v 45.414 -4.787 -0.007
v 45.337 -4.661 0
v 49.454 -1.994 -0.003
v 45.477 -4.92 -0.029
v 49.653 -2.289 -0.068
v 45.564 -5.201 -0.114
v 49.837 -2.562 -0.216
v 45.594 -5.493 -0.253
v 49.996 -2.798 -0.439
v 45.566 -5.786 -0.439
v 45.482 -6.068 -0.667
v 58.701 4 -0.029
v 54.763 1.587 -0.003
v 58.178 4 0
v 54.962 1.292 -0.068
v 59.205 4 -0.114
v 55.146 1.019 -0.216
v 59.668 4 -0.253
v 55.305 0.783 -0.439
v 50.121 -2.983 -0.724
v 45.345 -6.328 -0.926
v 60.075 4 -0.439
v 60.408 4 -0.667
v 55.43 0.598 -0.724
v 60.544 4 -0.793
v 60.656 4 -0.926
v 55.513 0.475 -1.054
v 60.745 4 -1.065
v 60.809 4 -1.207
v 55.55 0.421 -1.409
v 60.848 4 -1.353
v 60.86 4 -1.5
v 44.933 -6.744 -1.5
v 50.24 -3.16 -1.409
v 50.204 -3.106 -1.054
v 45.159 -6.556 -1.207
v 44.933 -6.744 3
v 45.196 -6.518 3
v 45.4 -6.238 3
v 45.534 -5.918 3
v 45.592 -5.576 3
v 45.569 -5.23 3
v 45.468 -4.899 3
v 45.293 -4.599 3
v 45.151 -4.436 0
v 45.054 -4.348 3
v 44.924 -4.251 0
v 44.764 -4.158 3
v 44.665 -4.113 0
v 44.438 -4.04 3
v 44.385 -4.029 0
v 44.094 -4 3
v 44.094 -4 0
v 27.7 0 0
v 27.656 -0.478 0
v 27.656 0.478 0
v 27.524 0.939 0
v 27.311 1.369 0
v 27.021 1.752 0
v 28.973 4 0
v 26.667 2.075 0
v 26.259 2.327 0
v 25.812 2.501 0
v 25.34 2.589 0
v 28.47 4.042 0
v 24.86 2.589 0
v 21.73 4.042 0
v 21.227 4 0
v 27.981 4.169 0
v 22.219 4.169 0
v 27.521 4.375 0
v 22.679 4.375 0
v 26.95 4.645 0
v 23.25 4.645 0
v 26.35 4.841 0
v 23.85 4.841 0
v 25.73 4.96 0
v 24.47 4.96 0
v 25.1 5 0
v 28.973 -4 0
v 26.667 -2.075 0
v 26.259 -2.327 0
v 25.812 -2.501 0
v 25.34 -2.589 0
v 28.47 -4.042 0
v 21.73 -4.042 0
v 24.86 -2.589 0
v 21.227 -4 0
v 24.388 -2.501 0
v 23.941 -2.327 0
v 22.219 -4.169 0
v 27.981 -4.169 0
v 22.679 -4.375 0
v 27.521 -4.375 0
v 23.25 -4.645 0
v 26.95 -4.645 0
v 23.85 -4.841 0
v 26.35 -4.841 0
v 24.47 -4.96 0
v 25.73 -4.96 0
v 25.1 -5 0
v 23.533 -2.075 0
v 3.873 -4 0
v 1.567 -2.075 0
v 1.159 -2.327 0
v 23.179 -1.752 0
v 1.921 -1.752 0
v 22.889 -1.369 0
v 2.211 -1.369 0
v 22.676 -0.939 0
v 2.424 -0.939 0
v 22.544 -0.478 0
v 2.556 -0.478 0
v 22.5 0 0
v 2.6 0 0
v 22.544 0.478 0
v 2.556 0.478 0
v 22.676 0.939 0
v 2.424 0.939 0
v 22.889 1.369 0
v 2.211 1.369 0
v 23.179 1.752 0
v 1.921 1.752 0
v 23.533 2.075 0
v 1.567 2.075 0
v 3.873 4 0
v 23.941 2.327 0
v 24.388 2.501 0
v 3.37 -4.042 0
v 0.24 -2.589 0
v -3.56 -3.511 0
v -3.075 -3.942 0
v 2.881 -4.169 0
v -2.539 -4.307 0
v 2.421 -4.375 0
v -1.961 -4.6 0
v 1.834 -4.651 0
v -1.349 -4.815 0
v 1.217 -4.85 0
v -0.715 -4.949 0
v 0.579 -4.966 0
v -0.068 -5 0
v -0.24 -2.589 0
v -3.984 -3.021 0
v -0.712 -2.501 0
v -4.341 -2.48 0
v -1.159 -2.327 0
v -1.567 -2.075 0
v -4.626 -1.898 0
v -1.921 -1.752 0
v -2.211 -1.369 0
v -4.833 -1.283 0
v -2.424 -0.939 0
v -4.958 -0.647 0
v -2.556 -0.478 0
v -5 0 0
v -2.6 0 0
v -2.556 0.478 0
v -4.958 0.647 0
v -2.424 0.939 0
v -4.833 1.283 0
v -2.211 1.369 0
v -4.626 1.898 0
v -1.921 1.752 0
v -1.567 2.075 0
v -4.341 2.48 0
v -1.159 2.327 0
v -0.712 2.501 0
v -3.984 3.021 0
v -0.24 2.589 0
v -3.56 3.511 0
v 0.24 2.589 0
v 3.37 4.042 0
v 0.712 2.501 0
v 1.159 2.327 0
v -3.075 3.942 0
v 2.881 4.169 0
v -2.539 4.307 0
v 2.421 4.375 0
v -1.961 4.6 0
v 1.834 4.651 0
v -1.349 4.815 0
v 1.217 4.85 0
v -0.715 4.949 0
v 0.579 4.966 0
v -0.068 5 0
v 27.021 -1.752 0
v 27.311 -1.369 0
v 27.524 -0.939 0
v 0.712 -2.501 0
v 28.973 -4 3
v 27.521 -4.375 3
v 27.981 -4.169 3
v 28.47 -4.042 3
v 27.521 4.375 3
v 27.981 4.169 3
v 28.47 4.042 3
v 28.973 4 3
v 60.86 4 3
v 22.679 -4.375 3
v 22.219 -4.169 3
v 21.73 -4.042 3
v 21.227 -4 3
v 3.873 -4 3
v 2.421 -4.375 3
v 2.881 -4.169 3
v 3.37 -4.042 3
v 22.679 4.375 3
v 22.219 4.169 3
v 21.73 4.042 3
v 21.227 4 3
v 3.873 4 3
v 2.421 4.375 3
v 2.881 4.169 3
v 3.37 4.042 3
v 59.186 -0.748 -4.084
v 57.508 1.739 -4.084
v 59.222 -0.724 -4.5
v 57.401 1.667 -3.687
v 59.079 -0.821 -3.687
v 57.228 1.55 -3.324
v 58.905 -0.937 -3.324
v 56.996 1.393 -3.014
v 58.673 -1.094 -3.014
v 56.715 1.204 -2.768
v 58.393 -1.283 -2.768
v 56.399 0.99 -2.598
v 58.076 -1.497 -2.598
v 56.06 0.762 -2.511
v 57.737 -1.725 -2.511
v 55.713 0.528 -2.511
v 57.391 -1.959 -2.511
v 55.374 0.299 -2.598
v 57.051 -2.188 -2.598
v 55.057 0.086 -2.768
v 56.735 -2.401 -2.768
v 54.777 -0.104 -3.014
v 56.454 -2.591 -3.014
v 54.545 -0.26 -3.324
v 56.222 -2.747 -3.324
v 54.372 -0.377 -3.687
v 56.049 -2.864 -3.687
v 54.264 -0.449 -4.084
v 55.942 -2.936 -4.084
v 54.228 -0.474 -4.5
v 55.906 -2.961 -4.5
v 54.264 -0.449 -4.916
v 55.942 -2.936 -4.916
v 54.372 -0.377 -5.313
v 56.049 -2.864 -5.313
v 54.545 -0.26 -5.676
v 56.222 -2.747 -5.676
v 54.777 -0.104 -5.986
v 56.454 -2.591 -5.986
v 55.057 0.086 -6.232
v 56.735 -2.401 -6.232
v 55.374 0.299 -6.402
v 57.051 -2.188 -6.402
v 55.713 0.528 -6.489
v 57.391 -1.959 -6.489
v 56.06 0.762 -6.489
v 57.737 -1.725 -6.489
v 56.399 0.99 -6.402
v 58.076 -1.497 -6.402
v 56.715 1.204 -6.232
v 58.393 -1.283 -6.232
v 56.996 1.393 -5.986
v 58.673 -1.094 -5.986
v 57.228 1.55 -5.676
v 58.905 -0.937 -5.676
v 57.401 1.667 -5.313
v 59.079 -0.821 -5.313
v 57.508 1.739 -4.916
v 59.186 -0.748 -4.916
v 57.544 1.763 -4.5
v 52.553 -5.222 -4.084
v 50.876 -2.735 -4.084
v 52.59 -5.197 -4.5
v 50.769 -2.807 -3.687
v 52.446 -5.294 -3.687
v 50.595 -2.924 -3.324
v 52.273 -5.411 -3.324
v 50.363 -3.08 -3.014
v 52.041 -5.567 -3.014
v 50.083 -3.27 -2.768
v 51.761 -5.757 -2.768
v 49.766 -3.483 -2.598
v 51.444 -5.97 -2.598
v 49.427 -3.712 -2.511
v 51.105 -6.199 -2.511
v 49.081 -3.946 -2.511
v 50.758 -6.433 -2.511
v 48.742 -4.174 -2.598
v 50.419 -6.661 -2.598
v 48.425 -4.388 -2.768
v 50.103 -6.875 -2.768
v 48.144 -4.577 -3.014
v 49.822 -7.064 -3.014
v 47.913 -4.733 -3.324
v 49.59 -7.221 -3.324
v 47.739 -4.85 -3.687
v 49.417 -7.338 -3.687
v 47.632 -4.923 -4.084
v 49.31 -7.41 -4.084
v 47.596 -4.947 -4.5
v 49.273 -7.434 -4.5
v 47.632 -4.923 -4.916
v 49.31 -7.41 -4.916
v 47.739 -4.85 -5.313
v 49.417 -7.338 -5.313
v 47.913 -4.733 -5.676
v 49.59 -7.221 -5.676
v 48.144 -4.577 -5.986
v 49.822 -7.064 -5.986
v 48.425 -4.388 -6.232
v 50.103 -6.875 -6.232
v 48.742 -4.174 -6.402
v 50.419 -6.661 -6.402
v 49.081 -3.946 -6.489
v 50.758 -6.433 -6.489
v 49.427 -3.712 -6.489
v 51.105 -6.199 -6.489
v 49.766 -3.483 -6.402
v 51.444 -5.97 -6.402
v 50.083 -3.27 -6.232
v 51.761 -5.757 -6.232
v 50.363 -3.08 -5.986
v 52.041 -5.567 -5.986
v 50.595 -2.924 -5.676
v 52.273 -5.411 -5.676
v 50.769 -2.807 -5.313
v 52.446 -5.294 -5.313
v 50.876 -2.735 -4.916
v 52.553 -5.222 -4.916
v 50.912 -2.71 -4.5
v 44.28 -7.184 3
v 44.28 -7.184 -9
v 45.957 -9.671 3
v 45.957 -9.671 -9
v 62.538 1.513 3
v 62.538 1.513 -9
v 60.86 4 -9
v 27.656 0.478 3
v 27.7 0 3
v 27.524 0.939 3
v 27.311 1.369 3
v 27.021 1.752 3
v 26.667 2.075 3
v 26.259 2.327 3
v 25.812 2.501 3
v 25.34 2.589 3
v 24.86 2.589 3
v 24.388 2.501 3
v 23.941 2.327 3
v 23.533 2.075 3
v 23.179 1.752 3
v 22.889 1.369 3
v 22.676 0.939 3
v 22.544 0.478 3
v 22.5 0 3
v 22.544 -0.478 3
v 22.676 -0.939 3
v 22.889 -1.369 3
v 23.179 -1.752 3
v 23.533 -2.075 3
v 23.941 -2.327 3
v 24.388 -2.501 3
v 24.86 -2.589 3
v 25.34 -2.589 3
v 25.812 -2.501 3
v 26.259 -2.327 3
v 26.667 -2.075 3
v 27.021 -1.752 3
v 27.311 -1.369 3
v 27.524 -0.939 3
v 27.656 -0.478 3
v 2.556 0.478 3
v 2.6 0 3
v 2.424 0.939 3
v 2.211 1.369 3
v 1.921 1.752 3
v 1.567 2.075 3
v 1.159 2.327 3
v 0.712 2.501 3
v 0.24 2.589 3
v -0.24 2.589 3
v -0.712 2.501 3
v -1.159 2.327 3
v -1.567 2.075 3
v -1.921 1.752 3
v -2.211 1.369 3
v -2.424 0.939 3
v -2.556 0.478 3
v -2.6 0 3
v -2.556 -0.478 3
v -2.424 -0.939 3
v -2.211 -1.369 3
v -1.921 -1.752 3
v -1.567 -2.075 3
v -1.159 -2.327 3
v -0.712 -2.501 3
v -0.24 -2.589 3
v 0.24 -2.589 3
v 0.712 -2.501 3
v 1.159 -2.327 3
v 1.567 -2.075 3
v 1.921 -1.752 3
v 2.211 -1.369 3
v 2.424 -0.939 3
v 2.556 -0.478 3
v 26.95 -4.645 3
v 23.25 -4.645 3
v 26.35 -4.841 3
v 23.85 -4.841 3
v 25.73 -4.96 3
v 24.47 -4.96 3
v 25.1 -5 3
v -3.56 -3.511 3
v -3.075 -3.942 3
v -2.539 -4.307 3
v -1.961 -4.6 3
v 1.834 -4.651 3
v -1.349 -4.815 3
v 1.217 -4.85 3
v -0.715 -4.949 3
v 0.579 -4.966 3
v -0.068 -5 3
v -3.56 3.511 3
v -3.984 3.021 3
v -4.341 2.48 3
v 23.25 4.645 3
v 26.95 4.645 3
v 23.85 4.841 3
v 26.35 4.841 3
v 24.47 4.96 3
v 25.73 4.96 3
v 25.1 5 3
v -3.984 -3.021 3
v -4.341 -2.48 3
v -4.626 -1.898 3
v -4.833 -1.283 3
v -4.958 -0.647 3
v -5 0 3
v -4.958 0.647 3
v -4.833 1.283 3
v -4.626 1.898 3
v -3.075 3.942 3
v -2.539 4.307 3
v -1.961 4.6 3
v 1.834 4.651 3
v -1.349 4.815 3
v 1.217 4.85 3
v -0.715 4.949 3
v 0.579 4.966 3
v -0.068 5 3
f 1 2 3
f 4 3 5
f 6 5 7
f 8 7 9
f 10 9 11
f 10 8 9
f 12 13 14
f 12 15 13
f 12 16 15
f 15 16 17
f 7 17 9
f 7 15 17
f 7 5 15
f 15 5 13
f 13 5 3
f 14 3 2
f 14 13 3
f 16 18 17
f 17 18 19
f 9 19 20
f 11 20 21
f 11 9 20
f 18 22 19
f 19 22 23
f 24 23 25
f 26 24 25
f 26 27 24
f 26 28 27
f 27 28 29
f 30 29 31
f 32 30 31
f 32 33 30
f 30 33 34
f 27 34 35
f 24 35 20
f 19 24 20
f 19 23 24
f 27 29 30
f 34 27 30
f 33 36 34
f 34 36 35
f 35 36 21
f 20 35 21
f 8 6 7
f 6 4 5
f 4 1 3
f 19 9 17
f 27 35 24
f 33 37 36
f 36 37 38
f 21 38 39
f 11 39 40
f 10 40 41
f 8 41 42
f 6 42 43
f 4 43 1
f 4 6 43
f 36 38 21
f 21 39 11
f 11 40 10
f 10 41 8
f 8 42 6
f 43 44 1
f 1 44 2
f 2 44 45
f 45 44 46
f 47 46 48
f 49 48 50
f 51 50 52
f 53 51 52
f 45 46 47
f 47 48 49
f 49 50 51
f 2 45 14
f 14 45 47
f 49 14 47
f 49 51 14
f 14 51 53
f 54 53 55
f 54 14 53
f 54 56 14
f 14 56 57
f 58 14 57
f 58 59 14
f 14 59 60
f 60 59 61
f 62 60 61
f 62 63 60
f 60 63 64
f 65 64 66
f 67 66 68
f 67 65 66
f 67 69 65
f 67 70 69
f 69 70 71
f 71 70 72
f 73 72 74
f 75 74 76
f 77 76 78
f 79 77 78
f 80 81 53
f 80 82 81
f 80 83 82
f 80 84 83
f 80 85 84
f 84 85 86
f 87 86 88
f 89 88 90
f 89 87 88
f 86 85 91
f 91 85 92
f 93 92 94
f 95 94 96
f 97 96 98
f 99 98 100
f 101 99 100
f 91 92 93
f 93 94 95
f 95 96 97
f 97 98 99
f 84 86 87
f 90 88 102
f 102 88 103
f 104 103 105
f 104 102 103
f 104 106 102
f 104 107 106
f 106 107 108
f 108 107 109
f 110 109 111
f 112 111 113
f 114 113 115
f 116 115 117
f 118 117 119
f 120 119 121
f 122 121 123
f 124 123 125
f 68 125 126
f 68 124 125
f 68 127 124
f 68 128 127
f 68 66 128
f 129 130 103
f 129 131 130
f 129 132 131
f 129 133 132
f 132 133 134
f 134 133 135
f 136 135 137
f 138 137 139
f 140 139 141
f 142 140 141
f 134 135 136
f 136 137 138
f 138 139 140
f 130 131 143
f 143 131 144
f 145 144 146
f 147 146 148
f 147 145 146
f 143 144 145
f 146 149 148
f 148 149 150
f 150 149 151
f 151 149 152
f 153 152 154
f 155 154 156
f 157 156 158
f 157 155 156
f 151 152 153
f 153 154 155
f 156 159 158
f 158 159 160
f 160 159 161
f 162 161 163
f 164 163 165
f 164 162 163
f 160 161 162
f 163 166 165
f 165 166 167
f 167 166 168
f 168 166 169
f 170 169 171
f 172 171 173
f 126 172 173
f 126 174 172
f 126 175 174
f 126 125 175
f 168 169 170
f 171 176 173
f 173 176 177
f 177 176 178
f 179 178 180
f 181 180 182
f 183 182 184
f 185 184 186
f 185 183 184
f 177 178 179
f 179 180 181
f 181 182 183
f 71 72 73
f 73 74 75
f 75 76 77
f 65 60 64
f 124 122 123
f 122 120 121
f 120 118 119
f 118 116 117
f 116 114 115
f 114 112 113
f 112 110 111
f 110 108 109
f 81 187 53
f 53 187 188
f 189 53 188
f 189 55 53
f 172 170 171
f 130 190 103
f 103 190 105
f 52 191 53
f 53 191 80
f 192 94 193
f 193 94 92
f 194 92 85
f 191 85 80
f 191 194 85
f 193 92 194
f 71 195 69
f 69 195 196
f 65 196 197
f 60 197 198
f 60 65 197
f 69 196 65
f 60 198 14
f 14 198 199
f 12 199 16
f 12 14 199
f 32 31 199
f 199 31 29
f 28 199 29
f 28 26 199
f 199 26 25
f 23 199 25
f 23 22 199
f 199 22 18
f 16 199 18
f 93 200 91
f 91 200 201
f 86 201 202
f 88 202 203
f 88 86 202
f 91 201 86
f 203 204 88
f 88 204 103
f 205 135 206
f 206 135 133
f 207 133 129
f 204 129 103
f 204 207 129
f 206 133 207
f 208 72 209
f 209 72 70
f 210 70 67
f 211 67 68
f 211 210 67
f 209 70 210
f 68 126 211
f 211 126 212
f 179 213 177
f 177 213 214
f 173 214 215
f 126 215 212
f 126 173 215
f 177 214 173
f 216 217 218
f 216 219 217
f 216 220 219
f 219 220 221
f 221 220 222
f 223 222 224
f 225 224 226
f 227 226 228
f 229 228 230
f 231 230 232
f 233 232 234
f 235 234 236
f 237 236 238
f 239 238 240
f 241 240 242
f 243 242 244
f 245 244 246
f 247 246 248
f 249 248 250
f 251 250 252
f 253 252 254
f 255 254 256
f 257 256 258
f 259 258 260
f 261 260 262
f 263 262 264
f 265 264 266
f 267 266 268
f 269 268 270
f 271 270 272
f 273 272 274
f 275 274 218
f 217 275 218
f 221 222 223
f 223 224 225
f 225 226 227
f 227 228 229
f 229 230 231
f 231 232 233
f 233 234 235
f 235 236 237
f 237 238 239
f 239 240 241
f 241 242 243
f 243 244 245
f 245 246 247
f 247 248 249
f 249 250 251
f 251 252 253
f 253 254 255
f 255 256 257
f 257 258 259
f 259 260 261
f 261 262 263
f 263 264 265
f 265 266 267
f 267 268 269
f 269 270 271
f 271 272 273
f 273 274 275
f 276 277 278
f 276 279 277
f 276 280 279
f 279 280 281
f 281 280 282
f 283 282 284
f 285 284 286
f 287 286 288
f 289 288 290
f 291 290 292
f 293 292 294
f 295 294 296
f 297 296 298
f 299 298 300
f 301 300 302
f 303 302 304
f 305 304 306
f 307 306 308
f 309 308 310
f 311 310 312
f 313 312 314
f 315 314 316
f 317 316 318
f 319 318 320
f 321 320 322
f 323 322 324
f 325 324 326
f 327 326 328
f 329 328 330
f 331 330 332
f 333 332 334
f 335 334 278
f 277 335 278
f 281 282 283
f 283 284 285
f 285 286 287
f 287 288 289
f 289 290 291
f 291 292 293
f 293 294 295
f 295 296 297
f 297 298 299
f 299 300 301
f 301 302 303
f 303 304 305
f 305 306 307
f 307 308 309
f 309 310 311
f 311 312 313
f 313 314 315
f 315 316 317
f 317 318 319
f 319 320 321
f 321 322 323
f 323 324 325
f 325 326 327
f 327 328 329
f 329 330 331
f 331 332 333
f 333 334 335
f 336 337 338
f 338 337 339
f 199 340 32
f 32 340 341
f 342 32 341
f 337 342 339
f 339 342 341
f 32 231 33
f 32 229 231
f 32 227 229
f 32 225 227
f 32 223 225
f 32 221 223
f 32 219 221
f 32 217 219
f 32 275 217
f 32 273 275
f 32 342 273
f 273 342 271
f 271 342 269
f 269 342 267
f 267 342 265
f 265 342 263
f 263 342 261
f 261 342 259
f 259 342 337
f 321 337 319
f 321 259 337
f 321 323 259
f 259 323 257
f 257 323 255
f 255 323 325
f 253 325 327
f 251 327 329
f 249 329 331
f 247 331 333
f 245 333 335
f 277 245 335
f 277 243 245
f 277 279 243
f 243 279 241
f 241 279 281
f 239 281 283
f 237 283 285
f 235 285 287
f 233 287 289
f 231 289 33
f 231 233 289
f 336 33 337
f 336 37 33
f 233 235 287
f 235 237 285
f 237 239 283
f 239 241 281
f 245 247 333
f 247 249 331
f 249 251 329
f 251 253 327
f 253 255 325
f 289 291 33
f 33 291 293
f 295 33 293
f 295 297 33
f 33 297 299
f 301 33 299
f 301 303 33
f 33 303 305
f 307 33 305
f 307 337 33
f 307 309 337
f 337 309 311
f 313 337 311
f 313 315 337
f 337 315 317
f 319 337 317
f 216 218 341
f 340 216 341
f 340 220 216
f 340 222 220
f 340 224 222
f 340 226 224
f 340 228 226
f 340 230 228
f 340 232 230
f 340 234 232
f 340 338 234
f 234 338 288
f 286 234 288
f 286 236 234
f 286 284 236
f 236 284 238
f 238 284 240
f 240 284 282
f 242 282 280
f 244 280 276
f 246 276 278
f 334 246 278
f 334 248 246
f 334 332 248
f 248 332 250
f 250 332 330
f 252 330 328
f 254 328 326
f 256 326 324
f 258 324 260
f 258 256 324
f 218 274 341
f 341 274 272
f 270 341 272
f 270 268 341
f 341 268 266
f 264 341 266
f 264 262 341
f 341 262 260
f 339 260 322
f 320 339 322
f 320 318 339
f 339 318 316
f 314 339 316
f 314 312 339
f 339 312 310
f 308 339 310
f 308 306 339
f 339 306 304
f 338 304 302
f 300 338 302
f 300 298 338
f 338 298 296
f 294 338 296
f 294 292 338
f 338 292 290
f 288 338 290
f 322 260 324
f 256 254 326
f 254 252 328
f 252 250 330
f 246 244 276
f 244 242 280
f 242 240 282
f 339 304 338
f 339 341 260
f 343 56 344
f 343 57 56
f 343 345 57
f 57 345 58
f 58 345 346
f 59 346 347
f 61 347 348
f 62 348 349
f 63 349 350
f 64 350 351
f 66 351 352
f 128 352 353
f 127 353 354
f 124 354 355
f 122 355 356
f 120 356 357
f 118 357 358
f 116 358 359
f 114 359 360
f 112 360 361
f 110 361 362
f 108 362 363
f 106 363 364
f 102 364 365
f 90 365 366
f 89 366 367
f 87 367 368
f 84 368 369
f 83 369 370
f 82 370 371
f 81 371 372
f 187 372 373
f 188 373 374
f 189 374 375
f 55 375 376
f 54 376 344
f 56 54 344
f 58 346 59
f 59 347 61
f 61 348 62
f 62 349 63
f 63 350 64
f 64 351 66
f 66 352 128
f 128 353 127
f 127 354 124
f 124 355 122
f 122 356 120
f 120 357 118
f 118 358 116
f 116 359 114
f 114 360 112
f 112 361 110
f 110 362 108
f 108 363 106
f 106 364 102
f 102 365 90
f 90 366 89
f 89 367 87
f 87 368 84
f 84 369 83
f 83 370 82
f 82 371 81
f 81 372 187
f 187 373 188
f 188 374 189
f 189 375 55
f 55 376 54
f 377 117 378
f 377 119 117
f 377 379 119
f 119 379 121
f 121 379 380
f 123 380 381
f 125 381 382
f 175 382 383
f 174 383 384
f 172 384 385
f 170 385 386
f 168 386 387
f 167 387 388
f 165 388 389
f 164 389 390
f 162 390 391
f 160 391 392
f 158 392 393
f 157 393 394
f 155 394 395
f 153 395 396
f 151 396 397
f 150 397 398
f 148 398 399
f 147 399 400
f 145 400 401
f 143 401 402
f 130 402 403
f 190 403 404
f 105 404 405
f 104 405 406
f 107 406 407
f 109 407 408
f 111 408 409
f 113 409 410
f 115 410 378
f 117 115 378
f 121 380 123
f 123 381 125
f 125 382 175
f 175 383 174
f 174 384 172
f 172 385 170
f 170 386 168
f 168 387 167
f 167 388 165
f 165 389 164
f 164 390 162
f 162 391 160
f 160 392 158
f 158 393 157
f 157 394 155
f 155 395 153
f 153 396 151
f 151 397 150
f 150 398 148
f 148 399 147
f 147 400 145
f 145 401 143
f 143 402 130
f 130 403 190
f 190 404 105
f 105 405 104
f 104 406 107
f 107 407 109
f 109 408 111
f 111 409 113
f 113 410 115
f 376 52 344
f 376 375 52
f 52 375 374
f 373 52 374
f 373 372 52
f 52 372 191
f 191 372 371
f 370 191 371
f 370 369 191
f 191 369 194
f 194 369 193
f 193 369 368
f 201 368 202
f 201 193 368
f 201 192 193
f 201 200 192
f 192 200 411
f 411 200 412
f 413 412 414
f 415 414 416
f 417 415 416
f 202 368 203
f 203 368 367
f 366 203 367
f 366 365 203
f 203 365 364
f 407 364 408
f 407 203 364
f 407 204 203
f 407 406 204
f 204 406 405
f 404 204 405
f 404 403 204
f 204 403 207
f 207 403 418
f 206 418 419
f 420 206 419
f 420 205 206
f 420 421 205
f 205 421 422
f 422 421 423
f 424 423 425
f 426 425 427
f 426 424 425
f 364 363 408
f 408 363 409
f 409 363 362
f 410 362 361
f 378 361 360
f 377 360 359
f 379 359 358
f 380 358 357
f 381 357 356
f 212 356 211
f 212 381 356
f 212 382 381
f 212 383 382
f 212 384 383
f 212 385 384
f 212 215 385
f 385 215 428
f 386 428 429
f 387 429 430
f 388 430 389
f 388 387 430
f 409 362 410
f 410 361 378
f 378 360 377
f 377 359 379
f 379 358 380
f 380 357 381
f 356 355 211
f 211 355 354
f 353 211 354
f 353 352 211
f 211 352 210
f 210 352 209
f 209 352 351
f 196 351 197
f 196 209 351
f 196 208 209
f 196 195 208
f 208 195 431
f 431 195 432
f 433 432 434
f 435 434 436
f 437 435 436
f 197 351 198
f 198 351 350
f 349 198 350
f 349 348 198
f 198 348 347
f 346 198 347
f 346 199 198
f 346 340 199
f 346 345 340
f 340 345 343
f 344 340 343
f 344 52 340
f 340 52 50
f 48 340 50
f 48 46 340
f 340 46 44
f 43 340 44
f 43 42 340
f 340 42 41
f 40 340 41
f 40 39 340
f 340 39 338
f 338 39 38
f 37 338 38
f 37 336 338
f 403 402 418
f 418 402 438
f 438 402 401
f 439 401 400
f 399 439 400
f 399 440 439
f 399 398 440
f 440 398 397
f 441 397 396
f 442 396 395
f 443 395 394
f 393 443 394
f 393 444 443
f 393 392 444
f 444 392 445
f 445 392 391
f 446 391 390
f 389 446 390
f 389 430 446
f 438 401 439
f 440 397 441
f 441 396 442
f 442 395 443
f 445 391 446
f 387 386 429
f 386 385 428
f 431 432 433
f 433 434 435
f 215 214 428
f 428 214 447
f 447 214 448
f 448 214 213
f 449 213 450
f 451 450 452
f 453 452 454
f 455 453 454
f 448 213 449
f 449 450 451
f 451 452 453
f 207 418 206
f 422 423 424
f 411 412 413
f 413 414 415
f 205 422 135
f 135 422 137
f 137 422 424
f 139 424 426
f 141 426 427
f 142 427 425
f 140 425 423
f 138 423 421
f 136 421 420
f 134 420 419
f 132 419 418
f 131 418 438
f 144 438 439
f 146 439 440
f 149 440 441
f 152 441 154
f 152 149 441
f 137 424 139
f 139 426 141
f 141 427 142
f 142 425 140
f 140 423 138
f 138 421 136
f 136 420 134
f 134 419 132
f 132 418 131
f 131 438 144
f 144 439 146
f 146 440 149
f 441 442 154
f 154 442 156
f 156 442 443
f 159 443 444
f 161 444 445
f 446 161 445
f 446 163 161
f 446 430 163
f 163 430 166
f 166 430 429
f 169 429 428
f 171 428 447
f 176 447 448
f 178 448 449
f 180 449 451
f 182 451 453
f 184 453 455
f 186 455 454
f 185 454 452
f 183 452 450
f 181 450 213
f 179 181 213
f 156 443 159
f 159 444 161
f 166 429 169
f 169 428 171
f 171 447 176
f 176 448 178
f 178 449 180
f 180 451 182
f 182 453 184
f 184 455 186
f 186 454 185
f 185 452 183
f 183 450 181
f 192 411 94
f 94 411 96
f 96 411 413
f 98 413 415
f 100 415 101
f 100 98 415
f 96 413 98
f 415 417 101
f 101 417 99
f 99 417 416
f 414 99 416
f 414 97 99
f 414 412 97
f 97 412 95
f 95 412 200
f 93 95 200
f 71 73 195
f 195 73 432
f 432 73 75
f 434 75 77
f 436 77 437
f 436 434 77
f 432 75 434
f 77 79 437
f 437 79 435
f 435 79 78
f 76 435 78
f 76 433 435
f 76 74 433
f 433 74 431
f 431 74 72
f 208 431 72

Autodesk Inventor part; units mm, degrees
ref_plane "YZ Plane" through (0, 0, 0) normal (1, 0, 0) x (0, 1, 0)
ref_plane "XZ Plane" through (0, 0, 0) normal (0, 1, 0) x (-1, 0, 0)
ref_plane "XY Plane" through (0, 0, 0) normal (0, 0, 1) x (1, 0, 0)
sketch "スケッチ1" plane through (0, 0, 0) normal (0, 0, 1) x (1, 0, 0)
  line L0 (0, 0) -> (45, 0) construction
  line L1 (0, -4) -> (45, -4)
  line L2 (45, 4) -> (0, 4)
  arc A0 (0, 4) -> (0, -4) centre (0, 0) ccw
  arc A1 (45, -4) -> (45, 4) centre (45, 0) ccw
  circle A2 centre (0, 0) radius 2.6
  circle A3 centre (25.1, 0) radius 2.6
  line L3 (36.8368, 4) -> (49, 4)
  line L4 (49, 4) -> (49, -4)
  line L5 (49, -4) -> (36.8368, -4)
  line L6 (36.8368, -4) -> (36.8368, 4)
  circle A4 centre (0, 0) radius 5
  circle A5 centre (25.1, 0) radius 5
  point P0 (22.5, 0)
  dimension "d0" = 4
  dimension "d1" = 45
  dimension "d2" = 5.2
  dimension "d3" = 5.2
  dimension "d4" = 25.1
  dimension "d7" = 12.1632
  dimension "d8" = 8
  dimension "d9" = 4
  dimension "d34" = 10
  dimension "d35" = 10
extrude "押し出し1" add sketch "スケッチ1" along normal blind 3
draft "面の勾配1" angle 56 pull direction (0, -1, 0) faces at (49, -1.3333, 1) fixed edges at (49, -4, 1.5)
ref_plane "作業平面1" through (60.8605, 4, 0) normal (0.5591929, -0.8290376, 0) x (0.8290376, 0.5591929, 0)
sketch "スケッチ3" plane through (60.8605, 4, 0) normal (0.5591929, -0.8290376, 0) x (0.8290376, 0.5591929, 0)
  line L0 (0, -9) -> (-20, -9)
  line L1 (-20, -9) -> (-20, 3)
  line L2 (-20, 3) -> (0, 3)
  line L3 (0, 3) -> (0, -9)
  line L4 (0, 0) -> (0, 3) projected
  circle A0 centre (-14, -4.5) radius 2
  circle A1 centre (-6, -4.5) radius 2
  line L5 (-31.6332, 3) -> (-14.3063, 3) projected
  point P0 (-52.6924, 0)
  point P1 (2.1488, 1.5)
  dimension "d12" = 20
  dimension "d13" = 0
  dimension "d14" = 12
  dimension "d15" = 1.5
  dimension "d21" = 4
  dimension "d22" = 4
  dimension "d25" = 6
  dimension "d26" = 6
  dimension "d29" = 6
  dimension "d30" = 6
  dimension "d39" = 0
extrude "押し出し3" add sketch "スケッチ3" along normal blind 3
fillet "フィレット2" radius 3 6 edges at (3, 4, 1.5) (28.1, 4, 1.5) (22.1, 4, 1.5) (3, -4, 1.5) (28.1, -4, 1.5) (22.1, -4, 1.5)
fillet "フィレット5" radius 1.5 2 edges at (54.9302, 0, 0) (49, -4, 1.5)
equation "\"d3\" = d2"
equation "\"d21\" = d19"
equation "\"d22\" = d19"
equation "\"d26\" = d25"
equation "\"d29\" = d28"
equation "\"d30\" = d24"
equation "\"d28\" = d24"
equation "\"d19\" = 4"
equation "\"d24\" = 6"
properties part number "leg"
